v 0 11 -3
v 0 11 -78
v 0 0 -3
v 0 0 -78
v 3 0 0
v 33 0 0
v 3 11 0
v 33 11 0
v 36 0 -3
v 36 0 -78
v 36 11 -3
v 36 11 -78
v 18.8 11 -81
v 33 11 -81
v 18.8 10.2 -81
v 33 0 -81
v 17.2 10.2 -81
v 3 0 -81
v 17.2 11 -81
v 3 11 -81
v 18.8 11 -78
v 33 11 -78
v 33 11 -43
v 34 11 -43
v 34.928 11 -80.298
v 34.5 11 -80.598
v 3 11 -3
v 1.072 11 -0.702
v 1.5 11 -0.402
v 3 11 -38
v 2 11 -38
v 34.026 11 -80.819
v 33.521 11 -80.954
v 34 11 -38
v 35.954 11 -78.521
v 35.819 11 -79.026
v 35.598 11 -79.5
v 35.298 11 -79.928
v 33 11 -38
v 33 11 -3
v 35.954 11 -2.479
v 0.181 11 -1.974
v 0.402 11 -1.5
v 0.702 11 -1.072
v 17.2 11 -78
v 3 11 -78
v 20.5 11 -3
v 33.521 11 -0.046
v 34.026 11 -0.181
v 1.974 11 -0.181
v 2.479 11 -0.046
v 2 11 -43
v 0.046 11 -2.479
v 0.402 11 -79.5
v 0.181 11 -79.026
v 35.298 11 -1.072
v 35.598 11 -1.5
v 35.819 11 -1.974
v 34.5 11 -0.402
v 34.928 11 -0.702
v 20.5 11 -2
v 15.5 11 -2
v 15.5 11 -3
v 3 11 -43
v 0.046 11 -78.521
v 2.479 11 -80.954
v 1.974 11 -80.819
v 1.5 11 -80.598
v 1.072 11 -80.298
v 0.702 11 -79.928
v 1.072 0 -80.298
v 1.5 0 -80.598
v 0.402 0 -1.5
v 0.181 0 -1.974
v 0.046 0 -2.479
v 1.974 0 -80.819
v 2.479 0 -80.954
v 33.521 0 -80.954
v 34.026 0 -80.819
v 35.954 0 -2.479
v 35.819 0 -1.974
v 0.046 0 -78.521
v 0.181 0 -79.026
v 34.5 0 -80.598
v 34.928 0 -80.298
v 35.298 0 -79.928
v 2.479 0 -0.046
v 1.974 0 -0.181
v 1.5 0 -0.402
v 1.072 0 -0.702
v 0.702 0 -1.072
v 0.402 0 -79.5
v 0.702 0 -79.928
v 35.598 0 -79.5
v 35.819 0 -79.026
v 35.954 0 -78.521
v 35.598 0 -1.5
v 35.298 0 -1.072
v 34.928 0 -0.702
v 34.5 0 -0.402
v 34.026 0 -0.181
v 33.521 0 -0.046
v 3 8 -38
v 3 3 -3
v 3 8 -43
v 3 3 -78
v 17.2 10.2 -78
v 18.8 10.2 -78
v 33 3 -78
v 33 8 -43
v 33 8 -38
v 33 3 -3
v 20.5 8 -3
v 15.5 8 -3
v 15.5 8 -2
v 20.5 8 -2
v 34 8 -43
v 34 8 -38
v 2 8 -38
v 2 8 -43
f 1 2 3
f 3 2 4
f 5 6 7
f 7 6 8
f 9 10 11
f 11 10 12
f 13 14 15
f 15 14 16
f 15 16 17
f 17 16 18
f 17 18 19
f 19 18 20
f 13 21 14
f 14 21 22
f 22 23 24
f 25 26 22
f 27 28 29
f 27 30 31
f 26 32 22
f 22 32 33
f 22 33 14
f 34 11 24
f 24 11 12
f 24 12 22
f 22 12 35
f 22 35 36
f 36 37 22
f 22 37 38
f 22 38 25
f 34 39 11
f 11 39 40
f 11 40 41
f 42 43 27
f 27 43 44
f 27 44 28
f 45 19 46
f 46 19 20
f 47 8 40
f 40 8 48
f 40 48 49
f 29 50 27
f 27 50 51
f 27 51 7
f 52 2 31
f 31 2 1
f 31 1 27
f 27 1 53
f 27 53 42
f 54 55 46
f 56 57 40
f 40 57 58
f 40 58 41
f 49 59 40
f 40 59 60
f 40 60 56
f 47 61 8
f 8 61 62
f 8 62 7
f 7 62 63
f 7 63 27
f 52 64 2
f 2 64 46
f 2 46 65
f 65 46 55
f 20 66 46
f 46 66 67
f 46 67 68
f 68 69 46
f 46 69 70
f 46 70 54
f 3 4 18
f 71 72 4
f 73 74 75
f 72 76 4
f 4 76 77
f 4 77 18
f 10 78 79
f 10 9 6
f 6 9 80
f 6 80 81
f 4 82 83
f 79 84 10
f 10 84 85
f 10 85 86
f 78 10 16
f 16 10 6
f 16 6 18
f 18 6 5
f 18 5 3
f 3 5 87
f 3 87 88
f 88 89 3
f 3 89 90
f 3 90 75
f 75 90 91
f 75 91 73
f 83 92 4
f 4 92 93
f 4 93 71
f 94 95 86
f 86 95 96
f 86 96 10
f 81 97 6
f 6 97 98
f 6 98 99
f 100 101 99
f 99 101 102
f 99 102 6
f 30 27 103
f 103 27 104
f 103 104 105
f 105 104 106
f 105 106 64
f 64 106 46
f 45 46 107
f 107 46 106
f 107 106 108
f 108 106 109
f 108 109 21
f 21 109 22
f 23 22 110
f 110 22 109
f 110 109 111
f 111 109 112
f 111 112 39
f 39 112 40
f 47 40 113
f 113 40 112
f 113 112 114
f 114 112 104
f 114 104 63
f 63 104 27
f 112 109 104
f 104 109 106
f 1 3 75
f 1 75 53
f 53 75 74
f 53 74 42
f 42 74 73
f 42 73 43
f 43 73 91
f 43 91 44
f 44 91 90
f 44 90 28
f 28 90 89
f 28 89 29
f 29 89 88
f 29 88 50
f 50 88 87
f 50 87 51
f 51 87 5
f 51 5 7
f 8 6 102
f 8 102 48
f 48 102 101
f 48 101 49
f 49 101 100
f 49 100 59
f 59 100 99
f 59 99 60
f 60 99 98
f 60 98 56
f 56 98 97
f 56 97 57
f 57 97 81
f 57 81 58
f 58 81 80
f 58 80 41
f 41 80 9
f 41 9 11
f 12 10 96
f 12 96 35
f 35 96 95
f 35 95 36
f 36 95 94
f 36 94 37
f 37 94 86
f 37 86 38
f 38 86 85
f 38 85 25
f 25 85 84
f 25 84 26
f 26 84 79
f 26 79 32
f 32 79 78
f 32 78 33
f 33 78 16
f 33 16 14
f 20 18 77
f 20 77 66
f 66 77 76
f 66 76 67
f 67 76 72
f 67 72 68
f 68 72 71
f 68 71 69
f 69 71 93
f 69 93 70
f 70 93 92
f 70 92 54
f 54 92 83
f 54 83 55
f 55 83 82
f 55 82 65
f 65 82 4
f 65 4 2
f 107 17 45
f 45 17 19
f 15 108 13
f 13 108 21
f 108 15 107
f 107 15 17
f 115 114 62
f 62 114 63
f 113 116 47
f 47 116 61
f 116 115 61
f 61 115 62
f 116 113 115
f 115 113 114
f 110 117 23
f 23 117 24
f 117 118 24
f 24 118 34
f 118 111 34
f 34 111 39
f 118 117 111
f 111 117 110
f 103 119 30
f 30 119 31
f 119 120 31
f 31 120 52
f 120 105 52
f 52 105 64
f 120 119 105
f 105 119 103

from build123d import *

# Parameters (mm, degrees)
SKETCH1_W           = 36
SKETCH1_H           = 81
BOSS_EXTRUDE1_DEPTH = 11
SKETCH2_W           = 30
SKETCH2_H           = 75
CUT_EXTRUDE1_DEPTH  = 8
FILLET1_R           = 3
SKETCH3_W           = 1.6
SKETCH3_H           = 3
CUT_EXTRUDE2_DEPTH  = 0.8
SKETCH4_W           = 1
SKETCH4_H           = 5
SKETCH4_W_2         = 5
SKETCH4_H_2         = 1
CUT_EXTRUDE3_DEPTH  = 3


with BuildPart() as part:
    # Sketch1 → Boss-Extrude1 (new body)
    with BuildSketch(Plane(origin=(0, 0, 0), x_dir=(1, 0, 0), z_dir=(0, 1, 0))):
        with Locations((18, 40.5)):
            Rectangle(SKETCH1_W, SKETCH1_H)
    extrude(amount=BOSS_EXTRUDE1_DEPTH)

    # Sketch2 → Cut-Extrude1 (cut)
    with BuildSketch(Plane(origin=(0, 11, 0), x_dir=(1, 0, 0), z_dir=(0, 1, 0))):
        with Locations((18, 40.5)):
            Rectangle(SKETCH2_W, SKETCH2_H)
    extrude(amount=-CUT_EXTRUDE1_DEPTH, mode=Mode.SUBTRACT)

    # Fillet1
    fillet1_edges = [part.edges().sort_by_distance(p)[0] for p in [
        (0, 5.5, -81),
        (36, 5.5, -81),
        (36, 5.5, 0),
        (0, 5.5, 0),
    ]]
    fillet(fillet1_edges, radius=FILLET1_R)

    # Sketch3 → Cut-Extrude2 (cut)
    with BuildSketch(Plane(origin=(0, 11, 0), x_dir=(1, 0, 0), z_dir=(0, 1, 0))):
        with Locations((18, 79.5)):
            Rectangle(SKETCH3_W, SKETCH3_H)
    extrude(amount=-CUT_EXTRUDE2_DEPTH, mode=Mode.SUBTRACT)

    # Sketch4 → Cut-Extrude3 (cut)
    with BuildSketch(Plane(origin=(0, 11, 0), x_dir=(1, 0, 0), z_dir=(0, 1, 0))):
        with Locations((2.5, 40.5)):
            Rectangle(SKETCH4_W, SKETCH4_H)
        with Locations((33.5, 40.5)):
            Rectangle(SKETCH4_W, SKETCH4_H)
        with Locations((18, 2.5)):
            Rectangle(SKETCH4_W_2, SKETCH4_H_2)
    extrude(amount=-CUT_EXTRUDE3_DEPTH, mode=Mode.SUBTRACT)


solid = part.part
